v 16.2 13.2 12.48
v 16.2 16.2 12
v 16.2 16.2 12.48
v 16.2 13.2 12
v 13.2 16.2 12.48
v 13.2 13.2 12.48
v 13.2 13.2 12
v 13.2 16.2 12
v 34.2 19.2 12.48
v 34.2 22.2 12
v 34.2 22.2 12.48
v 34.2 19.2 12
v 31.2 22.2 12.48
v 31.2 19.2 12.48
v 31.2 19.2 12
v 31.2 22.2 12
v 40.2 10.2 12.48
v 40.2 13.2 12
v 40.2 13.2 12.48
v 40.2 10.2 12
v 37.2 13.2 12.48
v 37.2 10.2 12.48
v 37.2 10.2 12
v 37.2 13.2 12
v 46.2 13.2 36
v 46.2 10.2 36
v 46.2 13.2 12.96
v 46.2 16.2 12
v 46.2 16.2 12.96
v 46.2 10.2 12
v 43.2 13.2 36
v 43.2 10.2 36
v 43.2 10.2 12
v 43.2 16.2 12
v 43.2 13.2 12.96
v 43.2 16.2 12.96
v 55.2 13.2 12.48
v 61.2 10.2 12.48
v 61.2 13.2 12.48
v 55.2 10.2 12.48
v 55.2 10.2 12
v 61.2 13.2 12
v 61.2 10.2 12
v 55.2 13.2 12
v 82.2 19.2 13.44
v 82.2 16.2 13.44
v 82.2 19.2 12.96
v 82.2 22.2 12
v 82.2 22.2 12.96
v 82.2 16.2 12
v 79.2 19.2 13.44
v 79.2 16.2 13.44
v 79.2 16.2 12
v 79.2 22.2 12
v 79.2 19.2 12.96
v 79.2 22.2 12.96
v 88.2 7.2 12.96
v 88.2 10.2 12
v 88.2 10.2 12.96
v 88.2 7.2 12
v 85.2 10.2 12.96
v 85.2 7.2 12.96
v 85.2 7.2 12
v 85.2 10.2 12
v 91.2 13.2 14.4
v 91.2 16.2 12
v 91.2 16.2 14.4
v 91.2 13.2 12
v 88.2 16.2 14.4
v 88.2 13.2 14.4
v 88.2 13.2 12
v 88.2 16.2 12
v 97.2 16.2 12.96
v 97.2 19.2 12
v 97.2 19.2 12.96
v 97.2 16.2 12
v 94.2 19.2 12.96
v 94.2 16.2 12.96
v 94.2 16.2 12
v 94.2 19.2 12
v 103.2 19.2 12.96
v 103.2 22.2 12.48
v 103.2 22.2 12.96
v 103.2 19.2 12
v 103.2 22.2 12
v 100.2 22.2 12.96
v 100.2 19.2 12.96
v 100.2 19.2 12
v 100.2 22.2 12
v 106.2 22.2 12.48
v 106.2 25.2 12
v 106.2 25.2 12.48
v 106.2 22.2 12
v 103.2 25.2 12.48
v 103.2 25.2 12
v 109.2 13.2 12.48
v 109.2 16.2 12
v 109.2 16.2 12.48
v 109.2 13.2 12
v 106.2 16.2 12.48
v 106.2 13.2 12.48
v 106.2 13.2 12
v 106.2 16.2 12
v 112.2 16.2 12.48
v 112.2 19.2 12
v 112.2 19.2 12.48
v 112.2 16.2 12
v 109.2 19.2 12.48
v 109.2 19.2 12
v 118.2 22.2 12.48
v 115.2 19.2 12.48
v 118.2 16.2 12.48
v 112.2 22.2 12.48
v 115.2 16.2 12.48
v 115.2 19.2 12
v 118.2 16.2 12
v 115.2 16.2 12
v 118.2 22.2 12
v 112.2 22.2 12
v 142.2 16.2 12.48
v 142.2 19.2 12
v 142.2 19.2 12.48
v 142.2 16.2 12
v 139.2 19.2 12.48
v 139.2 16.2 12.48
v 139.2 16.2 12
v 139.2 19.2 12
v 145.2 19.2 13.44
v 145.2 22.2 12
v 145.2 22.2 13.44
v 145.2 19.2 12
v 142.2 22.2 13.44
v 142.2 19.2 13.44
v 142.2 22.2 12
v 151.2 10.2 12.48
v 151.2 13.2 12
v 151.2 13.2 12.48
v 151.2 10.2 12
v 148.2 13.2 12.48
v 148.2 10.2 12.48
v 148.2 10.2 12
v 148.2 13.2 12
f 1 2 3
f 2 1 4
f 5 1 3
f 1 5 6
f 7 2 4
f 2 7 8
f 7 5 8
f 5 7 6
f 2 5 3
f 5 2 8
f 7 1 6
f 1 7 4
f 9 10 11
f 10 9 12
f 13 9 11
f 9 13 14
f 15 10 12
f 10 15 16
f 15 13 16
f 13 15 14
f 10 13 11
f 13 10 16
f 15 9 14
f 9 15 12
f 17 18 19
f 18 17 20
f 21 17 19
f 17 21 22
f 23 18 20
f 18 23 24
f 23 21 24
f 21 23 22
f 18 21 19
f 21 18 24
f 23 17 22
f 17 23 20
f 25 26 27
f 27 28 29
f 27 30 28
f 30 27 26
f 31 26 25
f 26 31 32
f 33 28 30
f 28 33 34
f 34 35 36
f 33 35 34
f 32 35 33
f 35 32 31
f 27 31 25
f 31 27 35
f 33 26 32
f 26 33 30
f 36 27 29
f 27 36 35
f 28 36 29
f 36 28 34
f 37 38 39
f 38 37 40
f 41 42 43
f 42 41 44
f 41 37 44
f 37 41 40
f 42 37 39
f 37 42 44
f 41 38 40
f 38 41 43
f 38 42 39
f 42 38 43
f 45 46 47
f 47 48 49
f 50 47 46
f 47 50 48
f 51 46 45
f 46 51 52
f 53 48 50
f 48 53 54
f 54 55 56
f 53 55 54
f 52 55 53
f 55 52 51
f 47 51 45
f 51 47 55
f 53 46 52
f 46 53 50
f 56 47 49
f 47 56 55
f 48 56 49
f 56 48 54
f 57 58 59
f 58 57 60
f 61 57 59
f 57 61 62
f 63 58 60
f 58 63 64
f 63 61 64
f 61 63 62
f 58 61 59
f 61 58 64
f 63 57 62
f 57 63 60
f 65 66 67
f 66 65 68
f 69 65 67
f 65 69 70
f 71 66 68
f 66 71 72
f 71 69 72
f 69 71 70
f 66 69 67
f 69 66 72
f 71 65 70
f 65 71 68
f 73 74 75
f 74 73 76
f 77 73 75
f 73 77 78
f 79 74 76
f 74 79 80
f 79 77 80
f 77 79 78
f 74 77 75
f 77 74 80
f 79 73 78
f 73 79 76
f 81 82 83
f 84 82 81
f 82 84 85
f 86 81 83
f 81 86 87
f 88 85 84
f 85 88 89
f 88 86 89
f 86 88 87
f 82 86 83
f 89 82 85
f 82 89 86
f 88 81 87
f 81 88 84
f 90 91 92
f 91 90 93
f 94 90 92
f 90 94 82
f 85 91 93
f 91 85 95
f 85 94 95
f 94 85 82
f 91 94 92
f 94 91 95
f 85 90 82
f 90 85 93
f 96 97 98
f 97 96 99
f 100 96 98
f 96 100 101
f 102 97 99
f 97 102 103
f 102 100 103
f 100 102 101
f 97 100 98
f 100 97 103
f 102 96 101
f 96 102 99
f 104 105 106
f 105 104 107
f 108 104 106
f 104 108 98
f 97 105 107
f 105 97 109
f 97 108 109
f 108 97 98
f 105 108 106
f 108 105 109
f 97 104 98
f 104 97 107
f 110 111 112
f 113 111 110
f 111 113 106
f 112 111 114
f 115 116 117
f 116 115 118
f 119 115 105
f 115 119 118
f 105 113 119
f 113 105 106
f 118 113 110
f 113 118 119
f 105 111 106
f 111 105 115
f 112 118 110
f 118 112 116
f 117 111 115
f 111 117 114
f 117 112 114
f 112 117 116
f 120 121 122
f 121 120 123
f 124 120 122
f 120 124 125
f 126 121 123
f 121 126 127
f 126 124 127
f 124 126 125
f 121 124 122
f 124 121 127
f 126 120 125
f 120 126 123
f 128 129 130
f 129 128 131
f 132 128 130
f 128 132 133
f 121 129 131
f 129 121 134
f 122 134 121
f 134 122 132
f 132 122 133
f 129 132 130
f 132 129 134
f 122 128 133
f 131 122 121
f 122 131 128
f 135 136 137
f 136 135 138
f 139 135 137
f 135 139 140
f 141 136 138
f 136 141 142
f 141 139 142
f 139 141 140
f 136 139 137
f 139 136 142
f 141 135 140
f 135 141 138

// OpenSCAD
union() {
	translate(v = [13.200000000000001, 13.200000000000001, 12.0]) {
		cube(size = [3.0, 3.0, 0.48]);
	}
	translate(v = [31.200000000000003, 19.200000000000003, 12.0]) {
		cube(size = [3.0, 3.0, 0.48]);
	}
	translate(v = [37.2, 10.200000000000001, 12.0]) {
		cube(size = [3.0, 3.0, 0.48]);
	}
	translate(v = [43.2, 10.200000000000001, 12.0]) {
		cube(size = [3.0, 3.0, 24.0]);
	}
	translate(v = [43.2, 13.200000000000001, 12.0]) {
		cube(size = [3.0, 3.0, 0.96]);
	}
	translate(v = [55.2, 10.200000000000001, 12.0]) {
		cube(size = [3.0, 3.0, 0.48]);
	}
	translate(v = [58.2, 10.200000000000001, 12.0]) {
		cube(size = [3.0, 3.0, 0.48]);
	}
	translate(v = [79.2, 16.200000000000003, 12.0]) {
		cube(size = [3.0, 3.0, 1.44]);
	}
	translate(v = [79.2, 19.200000000000003, 12.0]) {
		cube(size = [3.0, 3.0, 0.96]);
	}
	translate(v = [85.2, 7.200000000000001, 12.0]) {
		cube(size = [3.0, 3.0, 0.96]);
	}
	translate(v = [88.2, 13.200000000000001, 12.0]) {
		cube(size = [3.0, 3.0, 2.4]);
	}
	translate(v = [94.2, 16.200000000000003, 12.0]) {
		cube(size = [3.0, 3.0, 0.96]);
	}
	translate(v = [100.2, 19.200000000000003, 12.0]) {
		cube(size = [3.0, 3.0, 0.96]);
	}
	translate(v = [103.2, 22.200000000000003, 12.0]) {
		cube(size = [3.0, 3.0, 0.48]);
	}
	translate(v = [106.2, 13.200000000000001, 12.0]) {
		cube(size = [3.0, 3.0, 0.48]);
	}
	translate(v = [109.2, 16.200000000000003, 12.0]) {
		cube(size = [3.0, 3.0, 0.48]);
	}
	translate(v = [112.2, 19.200000000000003, 12.0]) {
		cube(size = [3.0, 3.0, 0.48]);
	}
	translate(v = [115.2, 16.200000000000003, 12.0]) {
		cube(size = [3.0, 3.0, 0.48]);
	}
	translate(v = [115.2, 19.200000000000003, 12.0]) {
		cube(size = [3.0, 3.0, 0.48]);
	}
	translate(v = [139.2, 16.200000000000003, 12.0]) {
		cube(size = [3.0, 3.0, 0.48]);
	}
	translate(v = [142.2, 19.200000000000003, 12.0]) {
		cube(size = [3.0, 3.0, 1.44]);
	}
	translate(v = [148.2, 10.200000000000001, 12.0]) {
		cube(size = [3.0, 3.0, 0.48]);
	}
}
